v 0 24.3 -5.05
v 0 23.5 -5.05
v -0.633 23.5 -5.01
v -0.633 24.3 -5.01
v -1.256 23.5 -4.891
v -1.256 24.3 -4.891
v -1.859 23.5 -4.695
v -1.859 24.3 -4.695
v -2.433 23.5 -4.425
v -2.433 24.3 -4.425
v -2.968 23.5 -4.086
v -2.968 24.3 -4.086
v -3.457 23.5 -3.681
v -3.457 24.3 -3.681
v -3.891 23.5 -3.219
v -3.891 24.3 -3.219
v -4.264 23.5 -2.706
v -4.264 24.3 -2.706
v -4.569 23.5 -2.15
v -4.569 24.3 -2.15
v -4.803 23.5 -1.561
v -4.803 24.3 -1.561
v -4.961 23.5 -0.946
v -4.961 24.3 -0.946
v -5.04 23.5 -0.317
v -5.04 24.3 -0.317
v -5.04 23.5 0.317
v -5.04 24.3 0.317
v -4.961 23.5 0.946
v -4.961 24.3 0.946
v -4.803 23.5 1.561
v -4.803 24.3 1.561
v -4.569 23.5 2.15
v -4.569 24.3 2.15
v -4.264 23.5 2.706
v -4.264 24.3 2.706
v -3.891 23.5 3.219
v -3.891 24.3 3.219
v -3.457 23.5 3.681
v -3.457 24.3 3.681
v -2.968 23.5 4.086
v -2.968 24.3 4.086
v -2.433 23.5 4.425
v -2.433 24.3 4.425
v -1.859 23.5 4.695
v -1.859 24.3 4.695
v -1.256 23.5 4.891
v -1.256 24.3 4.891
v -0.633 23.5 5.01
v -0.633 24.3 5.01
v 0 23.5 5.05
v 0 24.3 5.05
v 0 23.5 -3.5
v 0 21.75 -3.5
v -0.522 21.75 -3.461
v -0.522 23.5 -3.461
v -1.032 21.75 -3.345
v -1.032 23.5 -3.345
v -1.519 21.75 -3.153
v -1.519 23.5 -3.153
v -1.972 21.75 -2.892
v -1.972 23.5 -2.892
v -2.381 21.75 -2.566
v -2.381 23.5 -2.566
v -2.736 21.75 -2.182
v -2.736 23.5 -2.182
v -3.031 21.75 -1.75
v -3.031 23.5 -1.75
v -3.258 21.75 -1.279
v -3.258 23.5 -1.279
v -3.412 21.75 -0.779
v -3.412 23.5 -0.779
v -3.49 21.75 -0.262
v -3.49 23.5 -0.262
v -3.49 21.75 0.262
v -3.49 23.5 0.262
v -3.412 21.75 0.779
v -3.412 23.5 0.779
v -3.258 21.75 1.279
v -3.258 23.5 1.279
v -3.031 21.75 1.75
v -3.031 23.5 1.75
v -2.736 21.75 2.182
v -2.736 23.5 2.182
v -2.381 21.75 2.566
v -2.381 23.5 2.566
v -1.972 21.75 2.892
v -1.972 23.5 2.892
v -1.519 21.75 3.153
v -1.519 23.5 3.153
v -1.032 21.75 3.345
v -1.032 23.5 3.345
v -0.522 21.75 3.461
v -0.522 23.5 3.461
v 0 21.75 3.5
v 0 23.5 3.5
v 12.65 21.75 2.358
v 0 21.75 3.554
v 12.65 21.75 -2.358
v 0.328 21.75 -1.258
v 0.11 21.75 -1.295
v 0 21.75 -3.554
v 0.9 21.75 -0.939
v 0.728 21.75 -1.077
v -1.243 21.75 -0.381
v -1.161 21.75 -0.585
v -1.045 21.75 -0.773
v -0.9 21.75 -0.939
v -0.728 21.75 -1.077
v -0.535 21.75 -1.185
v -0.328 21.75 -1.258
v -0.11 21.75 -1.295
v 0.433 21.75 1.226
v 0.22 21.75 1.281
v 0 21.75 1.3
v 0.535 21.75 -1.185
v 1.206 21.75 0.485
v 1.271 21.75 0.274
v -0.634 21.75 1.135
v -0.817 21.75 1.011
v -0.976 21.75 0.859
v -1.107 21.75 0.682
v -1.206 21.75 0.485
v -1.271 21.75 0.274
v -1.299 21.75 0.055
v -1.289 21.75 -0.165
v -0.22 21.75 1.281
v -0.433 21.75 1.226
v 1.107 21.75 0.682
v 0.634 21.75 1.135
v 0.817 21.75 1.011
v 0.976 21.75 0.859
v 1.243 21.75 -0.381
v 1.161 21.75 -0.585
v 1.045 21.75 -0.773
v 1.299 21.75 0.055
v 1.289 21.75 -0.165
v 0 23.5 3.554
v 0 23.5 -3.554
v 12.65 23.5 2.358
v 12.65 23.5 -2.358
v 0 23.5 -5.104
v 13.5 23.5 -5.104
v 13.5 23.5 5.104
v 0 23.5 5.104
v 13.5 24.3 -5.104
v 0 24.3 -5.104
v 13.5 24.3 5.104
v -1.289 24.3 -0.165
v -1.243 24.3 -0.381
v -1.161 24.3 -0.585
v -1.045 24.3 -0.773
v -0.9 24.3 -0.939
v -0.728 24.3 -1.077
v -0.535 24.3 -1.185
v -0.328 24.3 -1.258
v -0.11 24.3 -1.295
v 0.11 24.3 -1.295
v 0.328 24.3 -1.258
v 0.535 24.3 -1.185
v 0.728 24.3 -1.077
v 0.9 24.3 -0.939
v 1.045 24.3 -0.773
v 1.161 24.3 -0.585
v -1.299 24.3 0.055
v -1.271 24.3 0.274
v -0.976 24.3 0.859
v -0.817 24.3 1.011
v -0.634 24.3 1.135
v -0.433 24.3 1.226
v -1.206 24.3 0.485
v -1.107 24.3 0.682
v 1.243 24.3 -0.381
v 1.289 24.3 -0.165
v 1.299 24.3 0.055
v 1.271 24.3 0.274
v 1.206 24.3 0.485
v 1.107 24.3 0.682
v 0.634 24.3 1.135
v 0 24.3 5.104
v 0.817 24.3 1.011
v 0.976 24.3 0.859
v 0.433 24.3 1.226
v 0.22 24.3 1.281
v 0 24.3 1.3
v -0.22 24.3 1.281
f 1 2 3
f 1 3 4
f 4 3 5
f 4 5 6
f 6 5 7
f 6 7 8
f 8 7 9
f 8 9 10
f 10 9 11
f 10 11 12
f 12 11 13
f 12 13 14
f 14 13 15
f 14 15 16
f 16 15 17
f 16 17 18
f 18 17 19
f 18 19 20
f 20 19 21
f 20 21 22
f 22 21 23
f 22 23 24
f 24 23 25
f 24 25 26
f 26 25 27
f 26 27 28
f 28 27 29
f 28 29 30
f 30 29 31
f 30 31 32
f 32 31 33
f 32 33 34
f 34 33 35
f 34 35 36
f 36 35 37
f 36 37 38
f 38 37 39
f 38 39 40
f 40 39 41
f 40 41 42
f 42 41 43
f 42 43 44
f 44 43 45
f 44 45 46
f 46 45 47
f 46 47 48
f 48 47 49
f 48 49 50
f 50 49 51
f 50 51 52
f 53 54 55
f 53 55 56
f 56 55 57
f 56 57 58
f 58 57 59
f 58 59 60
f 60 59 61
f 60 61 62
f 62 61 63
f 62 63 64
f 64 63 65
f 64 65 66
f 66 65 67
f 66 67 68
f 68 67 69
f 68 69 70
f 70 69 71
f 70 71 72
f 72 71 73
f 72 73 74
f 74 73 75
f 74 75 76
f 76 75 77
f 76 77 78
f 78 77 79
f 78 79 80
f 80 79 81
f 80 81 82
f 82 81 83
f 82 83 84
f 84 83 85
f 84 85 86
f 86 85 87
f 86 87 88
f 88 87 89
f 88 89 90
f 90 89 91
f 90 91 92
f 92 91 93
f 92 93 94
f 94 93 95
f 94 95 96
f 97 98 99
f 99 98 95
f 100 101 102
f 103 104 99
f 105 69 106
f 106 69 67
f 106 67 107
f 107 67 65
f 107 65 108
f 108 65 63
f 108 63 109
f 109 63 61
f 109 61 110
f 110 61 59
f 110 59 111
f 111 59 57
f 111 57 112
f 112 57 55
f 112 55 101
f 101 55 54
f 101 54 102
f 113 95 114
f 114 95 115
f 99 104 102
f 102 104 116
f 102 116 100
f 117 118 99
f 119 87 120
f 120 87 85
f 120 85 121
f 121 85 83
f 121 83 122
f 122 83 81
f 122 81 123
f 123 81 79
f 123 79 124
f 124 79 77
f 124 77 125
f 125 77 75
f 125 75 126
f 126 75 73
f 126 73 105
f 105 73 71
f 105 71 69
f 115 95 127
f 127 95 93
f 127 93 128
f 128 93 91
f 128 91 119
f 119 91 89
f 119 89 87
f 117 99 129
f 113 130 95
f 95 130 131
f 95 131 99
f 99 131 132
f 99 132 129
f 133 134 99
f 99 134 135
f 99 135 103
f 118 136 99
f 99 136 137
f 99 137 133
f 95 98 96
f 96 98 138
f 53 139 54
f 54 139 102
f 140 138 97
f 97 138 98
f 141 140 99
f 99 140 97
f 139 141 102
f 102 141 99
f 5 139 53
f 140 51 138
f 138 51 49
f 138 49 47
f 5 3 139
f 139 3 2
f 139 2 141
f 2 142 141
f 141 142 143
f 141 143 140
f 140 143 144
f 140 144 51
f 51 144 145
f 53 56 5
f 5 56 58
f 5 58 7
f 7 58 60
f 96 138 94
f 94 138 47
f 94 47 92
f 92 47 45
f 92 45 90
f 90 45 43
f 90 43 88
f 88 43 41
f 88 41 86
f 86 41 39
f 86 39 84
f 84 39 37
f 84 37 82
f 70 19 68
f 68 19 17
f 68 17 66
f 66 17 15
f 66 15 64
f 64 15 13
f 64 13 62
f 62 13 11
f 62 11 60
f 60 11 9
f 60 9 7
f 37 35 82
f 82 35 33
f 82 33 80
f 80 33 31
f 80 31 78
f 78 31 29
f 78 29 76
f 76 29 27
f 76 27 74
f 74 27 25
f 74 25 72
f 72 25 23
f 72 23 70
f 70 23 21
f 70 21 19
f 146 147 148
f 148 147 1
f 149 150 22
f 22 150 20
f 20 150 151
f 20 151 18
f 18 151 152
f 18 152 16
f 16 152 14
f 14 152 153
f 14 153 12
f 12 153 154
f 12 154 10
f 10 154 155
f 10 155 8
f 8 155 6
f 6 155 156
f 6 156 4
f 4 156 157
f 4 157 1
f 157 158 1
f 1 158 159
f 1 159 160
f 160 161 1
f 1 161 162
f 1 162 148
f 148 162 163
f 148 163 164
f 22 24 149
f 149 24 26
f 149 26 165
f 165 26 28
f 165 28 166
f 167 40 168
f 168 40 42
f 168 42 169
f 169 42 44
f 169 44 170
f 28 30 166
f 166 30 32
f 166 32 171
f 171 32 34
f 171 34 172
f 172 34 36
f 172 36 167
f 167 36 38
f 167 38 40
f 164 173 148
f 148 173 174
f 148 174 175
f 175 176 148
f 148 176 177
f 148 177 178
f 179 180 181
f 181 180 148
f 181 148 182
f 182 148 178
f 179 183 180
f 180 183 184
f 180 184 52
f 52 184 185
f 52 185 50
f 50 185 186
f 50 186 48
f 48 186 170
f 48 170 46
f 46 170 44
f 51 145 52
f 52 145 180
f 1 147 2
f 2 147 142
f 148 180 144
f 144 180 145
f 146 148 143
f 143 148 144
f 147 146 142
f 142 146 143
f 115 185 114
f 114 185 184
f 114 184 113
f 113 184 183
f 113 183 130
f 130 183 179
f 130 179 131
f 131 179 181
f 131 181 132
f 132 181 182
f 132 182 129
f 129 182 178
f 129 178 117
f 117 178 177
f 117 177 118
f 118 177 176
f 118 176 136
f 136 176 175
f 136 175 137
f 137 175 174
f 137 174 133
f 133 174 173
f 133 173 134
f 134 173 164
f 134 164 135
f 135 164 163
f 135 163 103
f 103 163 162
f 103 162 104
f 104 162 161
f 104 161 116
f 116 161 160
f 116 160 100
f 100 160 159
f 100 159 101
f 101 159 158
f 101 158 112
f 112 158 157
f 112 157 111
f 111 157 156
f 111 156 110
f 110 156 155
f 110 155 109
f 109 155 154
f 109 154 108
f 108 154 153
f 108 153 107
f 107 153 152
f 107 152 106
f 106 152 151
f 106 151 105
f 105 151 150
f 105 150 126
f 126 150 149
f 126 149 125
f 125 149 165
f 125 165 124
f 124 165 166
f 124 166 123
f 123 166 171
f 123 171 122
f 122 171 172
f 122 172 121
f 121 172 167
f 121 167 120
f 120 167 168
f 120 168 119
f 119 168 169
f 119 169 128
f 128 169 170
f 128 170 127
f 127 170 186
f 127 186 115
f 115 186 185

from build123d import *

# Parameters (mm, degrees)
BOSS_EXTRUDE1_START = 22.625
SKETCH1_R           = 3.5
BOSS_EXTRUDE1_DEPTH = 0.875
BOSS_EXTRUDE2_START = 22.625
BOSS_EXTRUDE2_DEPTH = 0.875
BOSS_EXTRUDE3_START = 23.9
SKETCH3_R           = 5.05
BOSS_EXTRUDE3_DEPTH = 0.4
BOSS_EXTRUDE4_START = 23.9
SKETCH4_W           = 13.5
SKETCH4_H           = 10.207569722
BOSS_EXTRUDE4_DEPTH = 0.4
CUT_EXTRUDE1_START  = 23.025
SKETCH5_R           = 1.3
CUT_EXTRUDE1_DEPTH  = 1.275


with BuildPart() as part:
    # Sketch1 → Boss-Extrude1 (new, symmetric)
    with BuildSketch(Plane(origin=(0, 0, 0), x_dir=(1, 0, 0), z_dir=(0, 1, 0)).offset(BOSS_EXTRUDE1_START)):
        with Locations(Location((0, 0, 0), (0, 0, 270))):
            Circle(SKETCH1_R)
    extrude(amount=BOSS_EXTRUDE1_DEPTH, both=True)

    # Sketch2 → Boss-Extrude2 (add, symmetric)
    with BuildSketch(Plane(origin=(0, 0, 0), x_dir=(1, 0, 0), z_dir=(0, 1, 0)).offset(BOSS_EXTRUDE2_START)):
        Polygon((0, -3.55356197), (12.65, -2.357784906), (12.65, 2.357784906), (0, 3.55356197), align=None)
    extrude(amount=BOSS_EXTRUDE2_DEPTH, both=True)

    # Sketch3 → Boss-Extrude3 (add, symmetric)
    with BuildSketch(Plane(origin=(0, 0, 0), x_dir=(1, 0, 0), z_dir=(0, 1, 0)).offset(BOSS_EXTRUDE3_START)):
        with Locations(Location((0, 0, 0), (0, 0, 39.071364061))):
            Circle(SKETCH3_R)
    extrude(amount=BOSS_EXTRUDE3_DEPTH, both=True)

    # Sketch4 → Boss-Extrude4 (add, symmetric)
    with BuildSketch(Plane(origin=(0, 0, 0), x_dir=(1, 0, 0), z_dir=(0, 1, 0)).offset(BOSS_EXTRUDE4_START)):
        with Locations((6.75, 0)):
            Rectangle(SKETCH4_W, SKETCH4_H)
    extrude(amount=BOSS_EXTRUDE4_DEPTH, both=True)

    # Sketch5 → Cut-Extrude1 (cut, symmetric)
    with BuildSketch(Plane(origin=(0, 0, 0), x_dir=(1, 0, 0), z_dir=(0, 1, 0)).offset(CUT_EXTRUDE1_START)):
        with Locations(Location((0, 0, 0), (0, 0, 270))):
            Circle(SKETCH5_R)
    extrude(amount=CUT_EXTRUDE1_DEPTH, both=True, mode=Mode.SUBTRACT)


solid = part.part
